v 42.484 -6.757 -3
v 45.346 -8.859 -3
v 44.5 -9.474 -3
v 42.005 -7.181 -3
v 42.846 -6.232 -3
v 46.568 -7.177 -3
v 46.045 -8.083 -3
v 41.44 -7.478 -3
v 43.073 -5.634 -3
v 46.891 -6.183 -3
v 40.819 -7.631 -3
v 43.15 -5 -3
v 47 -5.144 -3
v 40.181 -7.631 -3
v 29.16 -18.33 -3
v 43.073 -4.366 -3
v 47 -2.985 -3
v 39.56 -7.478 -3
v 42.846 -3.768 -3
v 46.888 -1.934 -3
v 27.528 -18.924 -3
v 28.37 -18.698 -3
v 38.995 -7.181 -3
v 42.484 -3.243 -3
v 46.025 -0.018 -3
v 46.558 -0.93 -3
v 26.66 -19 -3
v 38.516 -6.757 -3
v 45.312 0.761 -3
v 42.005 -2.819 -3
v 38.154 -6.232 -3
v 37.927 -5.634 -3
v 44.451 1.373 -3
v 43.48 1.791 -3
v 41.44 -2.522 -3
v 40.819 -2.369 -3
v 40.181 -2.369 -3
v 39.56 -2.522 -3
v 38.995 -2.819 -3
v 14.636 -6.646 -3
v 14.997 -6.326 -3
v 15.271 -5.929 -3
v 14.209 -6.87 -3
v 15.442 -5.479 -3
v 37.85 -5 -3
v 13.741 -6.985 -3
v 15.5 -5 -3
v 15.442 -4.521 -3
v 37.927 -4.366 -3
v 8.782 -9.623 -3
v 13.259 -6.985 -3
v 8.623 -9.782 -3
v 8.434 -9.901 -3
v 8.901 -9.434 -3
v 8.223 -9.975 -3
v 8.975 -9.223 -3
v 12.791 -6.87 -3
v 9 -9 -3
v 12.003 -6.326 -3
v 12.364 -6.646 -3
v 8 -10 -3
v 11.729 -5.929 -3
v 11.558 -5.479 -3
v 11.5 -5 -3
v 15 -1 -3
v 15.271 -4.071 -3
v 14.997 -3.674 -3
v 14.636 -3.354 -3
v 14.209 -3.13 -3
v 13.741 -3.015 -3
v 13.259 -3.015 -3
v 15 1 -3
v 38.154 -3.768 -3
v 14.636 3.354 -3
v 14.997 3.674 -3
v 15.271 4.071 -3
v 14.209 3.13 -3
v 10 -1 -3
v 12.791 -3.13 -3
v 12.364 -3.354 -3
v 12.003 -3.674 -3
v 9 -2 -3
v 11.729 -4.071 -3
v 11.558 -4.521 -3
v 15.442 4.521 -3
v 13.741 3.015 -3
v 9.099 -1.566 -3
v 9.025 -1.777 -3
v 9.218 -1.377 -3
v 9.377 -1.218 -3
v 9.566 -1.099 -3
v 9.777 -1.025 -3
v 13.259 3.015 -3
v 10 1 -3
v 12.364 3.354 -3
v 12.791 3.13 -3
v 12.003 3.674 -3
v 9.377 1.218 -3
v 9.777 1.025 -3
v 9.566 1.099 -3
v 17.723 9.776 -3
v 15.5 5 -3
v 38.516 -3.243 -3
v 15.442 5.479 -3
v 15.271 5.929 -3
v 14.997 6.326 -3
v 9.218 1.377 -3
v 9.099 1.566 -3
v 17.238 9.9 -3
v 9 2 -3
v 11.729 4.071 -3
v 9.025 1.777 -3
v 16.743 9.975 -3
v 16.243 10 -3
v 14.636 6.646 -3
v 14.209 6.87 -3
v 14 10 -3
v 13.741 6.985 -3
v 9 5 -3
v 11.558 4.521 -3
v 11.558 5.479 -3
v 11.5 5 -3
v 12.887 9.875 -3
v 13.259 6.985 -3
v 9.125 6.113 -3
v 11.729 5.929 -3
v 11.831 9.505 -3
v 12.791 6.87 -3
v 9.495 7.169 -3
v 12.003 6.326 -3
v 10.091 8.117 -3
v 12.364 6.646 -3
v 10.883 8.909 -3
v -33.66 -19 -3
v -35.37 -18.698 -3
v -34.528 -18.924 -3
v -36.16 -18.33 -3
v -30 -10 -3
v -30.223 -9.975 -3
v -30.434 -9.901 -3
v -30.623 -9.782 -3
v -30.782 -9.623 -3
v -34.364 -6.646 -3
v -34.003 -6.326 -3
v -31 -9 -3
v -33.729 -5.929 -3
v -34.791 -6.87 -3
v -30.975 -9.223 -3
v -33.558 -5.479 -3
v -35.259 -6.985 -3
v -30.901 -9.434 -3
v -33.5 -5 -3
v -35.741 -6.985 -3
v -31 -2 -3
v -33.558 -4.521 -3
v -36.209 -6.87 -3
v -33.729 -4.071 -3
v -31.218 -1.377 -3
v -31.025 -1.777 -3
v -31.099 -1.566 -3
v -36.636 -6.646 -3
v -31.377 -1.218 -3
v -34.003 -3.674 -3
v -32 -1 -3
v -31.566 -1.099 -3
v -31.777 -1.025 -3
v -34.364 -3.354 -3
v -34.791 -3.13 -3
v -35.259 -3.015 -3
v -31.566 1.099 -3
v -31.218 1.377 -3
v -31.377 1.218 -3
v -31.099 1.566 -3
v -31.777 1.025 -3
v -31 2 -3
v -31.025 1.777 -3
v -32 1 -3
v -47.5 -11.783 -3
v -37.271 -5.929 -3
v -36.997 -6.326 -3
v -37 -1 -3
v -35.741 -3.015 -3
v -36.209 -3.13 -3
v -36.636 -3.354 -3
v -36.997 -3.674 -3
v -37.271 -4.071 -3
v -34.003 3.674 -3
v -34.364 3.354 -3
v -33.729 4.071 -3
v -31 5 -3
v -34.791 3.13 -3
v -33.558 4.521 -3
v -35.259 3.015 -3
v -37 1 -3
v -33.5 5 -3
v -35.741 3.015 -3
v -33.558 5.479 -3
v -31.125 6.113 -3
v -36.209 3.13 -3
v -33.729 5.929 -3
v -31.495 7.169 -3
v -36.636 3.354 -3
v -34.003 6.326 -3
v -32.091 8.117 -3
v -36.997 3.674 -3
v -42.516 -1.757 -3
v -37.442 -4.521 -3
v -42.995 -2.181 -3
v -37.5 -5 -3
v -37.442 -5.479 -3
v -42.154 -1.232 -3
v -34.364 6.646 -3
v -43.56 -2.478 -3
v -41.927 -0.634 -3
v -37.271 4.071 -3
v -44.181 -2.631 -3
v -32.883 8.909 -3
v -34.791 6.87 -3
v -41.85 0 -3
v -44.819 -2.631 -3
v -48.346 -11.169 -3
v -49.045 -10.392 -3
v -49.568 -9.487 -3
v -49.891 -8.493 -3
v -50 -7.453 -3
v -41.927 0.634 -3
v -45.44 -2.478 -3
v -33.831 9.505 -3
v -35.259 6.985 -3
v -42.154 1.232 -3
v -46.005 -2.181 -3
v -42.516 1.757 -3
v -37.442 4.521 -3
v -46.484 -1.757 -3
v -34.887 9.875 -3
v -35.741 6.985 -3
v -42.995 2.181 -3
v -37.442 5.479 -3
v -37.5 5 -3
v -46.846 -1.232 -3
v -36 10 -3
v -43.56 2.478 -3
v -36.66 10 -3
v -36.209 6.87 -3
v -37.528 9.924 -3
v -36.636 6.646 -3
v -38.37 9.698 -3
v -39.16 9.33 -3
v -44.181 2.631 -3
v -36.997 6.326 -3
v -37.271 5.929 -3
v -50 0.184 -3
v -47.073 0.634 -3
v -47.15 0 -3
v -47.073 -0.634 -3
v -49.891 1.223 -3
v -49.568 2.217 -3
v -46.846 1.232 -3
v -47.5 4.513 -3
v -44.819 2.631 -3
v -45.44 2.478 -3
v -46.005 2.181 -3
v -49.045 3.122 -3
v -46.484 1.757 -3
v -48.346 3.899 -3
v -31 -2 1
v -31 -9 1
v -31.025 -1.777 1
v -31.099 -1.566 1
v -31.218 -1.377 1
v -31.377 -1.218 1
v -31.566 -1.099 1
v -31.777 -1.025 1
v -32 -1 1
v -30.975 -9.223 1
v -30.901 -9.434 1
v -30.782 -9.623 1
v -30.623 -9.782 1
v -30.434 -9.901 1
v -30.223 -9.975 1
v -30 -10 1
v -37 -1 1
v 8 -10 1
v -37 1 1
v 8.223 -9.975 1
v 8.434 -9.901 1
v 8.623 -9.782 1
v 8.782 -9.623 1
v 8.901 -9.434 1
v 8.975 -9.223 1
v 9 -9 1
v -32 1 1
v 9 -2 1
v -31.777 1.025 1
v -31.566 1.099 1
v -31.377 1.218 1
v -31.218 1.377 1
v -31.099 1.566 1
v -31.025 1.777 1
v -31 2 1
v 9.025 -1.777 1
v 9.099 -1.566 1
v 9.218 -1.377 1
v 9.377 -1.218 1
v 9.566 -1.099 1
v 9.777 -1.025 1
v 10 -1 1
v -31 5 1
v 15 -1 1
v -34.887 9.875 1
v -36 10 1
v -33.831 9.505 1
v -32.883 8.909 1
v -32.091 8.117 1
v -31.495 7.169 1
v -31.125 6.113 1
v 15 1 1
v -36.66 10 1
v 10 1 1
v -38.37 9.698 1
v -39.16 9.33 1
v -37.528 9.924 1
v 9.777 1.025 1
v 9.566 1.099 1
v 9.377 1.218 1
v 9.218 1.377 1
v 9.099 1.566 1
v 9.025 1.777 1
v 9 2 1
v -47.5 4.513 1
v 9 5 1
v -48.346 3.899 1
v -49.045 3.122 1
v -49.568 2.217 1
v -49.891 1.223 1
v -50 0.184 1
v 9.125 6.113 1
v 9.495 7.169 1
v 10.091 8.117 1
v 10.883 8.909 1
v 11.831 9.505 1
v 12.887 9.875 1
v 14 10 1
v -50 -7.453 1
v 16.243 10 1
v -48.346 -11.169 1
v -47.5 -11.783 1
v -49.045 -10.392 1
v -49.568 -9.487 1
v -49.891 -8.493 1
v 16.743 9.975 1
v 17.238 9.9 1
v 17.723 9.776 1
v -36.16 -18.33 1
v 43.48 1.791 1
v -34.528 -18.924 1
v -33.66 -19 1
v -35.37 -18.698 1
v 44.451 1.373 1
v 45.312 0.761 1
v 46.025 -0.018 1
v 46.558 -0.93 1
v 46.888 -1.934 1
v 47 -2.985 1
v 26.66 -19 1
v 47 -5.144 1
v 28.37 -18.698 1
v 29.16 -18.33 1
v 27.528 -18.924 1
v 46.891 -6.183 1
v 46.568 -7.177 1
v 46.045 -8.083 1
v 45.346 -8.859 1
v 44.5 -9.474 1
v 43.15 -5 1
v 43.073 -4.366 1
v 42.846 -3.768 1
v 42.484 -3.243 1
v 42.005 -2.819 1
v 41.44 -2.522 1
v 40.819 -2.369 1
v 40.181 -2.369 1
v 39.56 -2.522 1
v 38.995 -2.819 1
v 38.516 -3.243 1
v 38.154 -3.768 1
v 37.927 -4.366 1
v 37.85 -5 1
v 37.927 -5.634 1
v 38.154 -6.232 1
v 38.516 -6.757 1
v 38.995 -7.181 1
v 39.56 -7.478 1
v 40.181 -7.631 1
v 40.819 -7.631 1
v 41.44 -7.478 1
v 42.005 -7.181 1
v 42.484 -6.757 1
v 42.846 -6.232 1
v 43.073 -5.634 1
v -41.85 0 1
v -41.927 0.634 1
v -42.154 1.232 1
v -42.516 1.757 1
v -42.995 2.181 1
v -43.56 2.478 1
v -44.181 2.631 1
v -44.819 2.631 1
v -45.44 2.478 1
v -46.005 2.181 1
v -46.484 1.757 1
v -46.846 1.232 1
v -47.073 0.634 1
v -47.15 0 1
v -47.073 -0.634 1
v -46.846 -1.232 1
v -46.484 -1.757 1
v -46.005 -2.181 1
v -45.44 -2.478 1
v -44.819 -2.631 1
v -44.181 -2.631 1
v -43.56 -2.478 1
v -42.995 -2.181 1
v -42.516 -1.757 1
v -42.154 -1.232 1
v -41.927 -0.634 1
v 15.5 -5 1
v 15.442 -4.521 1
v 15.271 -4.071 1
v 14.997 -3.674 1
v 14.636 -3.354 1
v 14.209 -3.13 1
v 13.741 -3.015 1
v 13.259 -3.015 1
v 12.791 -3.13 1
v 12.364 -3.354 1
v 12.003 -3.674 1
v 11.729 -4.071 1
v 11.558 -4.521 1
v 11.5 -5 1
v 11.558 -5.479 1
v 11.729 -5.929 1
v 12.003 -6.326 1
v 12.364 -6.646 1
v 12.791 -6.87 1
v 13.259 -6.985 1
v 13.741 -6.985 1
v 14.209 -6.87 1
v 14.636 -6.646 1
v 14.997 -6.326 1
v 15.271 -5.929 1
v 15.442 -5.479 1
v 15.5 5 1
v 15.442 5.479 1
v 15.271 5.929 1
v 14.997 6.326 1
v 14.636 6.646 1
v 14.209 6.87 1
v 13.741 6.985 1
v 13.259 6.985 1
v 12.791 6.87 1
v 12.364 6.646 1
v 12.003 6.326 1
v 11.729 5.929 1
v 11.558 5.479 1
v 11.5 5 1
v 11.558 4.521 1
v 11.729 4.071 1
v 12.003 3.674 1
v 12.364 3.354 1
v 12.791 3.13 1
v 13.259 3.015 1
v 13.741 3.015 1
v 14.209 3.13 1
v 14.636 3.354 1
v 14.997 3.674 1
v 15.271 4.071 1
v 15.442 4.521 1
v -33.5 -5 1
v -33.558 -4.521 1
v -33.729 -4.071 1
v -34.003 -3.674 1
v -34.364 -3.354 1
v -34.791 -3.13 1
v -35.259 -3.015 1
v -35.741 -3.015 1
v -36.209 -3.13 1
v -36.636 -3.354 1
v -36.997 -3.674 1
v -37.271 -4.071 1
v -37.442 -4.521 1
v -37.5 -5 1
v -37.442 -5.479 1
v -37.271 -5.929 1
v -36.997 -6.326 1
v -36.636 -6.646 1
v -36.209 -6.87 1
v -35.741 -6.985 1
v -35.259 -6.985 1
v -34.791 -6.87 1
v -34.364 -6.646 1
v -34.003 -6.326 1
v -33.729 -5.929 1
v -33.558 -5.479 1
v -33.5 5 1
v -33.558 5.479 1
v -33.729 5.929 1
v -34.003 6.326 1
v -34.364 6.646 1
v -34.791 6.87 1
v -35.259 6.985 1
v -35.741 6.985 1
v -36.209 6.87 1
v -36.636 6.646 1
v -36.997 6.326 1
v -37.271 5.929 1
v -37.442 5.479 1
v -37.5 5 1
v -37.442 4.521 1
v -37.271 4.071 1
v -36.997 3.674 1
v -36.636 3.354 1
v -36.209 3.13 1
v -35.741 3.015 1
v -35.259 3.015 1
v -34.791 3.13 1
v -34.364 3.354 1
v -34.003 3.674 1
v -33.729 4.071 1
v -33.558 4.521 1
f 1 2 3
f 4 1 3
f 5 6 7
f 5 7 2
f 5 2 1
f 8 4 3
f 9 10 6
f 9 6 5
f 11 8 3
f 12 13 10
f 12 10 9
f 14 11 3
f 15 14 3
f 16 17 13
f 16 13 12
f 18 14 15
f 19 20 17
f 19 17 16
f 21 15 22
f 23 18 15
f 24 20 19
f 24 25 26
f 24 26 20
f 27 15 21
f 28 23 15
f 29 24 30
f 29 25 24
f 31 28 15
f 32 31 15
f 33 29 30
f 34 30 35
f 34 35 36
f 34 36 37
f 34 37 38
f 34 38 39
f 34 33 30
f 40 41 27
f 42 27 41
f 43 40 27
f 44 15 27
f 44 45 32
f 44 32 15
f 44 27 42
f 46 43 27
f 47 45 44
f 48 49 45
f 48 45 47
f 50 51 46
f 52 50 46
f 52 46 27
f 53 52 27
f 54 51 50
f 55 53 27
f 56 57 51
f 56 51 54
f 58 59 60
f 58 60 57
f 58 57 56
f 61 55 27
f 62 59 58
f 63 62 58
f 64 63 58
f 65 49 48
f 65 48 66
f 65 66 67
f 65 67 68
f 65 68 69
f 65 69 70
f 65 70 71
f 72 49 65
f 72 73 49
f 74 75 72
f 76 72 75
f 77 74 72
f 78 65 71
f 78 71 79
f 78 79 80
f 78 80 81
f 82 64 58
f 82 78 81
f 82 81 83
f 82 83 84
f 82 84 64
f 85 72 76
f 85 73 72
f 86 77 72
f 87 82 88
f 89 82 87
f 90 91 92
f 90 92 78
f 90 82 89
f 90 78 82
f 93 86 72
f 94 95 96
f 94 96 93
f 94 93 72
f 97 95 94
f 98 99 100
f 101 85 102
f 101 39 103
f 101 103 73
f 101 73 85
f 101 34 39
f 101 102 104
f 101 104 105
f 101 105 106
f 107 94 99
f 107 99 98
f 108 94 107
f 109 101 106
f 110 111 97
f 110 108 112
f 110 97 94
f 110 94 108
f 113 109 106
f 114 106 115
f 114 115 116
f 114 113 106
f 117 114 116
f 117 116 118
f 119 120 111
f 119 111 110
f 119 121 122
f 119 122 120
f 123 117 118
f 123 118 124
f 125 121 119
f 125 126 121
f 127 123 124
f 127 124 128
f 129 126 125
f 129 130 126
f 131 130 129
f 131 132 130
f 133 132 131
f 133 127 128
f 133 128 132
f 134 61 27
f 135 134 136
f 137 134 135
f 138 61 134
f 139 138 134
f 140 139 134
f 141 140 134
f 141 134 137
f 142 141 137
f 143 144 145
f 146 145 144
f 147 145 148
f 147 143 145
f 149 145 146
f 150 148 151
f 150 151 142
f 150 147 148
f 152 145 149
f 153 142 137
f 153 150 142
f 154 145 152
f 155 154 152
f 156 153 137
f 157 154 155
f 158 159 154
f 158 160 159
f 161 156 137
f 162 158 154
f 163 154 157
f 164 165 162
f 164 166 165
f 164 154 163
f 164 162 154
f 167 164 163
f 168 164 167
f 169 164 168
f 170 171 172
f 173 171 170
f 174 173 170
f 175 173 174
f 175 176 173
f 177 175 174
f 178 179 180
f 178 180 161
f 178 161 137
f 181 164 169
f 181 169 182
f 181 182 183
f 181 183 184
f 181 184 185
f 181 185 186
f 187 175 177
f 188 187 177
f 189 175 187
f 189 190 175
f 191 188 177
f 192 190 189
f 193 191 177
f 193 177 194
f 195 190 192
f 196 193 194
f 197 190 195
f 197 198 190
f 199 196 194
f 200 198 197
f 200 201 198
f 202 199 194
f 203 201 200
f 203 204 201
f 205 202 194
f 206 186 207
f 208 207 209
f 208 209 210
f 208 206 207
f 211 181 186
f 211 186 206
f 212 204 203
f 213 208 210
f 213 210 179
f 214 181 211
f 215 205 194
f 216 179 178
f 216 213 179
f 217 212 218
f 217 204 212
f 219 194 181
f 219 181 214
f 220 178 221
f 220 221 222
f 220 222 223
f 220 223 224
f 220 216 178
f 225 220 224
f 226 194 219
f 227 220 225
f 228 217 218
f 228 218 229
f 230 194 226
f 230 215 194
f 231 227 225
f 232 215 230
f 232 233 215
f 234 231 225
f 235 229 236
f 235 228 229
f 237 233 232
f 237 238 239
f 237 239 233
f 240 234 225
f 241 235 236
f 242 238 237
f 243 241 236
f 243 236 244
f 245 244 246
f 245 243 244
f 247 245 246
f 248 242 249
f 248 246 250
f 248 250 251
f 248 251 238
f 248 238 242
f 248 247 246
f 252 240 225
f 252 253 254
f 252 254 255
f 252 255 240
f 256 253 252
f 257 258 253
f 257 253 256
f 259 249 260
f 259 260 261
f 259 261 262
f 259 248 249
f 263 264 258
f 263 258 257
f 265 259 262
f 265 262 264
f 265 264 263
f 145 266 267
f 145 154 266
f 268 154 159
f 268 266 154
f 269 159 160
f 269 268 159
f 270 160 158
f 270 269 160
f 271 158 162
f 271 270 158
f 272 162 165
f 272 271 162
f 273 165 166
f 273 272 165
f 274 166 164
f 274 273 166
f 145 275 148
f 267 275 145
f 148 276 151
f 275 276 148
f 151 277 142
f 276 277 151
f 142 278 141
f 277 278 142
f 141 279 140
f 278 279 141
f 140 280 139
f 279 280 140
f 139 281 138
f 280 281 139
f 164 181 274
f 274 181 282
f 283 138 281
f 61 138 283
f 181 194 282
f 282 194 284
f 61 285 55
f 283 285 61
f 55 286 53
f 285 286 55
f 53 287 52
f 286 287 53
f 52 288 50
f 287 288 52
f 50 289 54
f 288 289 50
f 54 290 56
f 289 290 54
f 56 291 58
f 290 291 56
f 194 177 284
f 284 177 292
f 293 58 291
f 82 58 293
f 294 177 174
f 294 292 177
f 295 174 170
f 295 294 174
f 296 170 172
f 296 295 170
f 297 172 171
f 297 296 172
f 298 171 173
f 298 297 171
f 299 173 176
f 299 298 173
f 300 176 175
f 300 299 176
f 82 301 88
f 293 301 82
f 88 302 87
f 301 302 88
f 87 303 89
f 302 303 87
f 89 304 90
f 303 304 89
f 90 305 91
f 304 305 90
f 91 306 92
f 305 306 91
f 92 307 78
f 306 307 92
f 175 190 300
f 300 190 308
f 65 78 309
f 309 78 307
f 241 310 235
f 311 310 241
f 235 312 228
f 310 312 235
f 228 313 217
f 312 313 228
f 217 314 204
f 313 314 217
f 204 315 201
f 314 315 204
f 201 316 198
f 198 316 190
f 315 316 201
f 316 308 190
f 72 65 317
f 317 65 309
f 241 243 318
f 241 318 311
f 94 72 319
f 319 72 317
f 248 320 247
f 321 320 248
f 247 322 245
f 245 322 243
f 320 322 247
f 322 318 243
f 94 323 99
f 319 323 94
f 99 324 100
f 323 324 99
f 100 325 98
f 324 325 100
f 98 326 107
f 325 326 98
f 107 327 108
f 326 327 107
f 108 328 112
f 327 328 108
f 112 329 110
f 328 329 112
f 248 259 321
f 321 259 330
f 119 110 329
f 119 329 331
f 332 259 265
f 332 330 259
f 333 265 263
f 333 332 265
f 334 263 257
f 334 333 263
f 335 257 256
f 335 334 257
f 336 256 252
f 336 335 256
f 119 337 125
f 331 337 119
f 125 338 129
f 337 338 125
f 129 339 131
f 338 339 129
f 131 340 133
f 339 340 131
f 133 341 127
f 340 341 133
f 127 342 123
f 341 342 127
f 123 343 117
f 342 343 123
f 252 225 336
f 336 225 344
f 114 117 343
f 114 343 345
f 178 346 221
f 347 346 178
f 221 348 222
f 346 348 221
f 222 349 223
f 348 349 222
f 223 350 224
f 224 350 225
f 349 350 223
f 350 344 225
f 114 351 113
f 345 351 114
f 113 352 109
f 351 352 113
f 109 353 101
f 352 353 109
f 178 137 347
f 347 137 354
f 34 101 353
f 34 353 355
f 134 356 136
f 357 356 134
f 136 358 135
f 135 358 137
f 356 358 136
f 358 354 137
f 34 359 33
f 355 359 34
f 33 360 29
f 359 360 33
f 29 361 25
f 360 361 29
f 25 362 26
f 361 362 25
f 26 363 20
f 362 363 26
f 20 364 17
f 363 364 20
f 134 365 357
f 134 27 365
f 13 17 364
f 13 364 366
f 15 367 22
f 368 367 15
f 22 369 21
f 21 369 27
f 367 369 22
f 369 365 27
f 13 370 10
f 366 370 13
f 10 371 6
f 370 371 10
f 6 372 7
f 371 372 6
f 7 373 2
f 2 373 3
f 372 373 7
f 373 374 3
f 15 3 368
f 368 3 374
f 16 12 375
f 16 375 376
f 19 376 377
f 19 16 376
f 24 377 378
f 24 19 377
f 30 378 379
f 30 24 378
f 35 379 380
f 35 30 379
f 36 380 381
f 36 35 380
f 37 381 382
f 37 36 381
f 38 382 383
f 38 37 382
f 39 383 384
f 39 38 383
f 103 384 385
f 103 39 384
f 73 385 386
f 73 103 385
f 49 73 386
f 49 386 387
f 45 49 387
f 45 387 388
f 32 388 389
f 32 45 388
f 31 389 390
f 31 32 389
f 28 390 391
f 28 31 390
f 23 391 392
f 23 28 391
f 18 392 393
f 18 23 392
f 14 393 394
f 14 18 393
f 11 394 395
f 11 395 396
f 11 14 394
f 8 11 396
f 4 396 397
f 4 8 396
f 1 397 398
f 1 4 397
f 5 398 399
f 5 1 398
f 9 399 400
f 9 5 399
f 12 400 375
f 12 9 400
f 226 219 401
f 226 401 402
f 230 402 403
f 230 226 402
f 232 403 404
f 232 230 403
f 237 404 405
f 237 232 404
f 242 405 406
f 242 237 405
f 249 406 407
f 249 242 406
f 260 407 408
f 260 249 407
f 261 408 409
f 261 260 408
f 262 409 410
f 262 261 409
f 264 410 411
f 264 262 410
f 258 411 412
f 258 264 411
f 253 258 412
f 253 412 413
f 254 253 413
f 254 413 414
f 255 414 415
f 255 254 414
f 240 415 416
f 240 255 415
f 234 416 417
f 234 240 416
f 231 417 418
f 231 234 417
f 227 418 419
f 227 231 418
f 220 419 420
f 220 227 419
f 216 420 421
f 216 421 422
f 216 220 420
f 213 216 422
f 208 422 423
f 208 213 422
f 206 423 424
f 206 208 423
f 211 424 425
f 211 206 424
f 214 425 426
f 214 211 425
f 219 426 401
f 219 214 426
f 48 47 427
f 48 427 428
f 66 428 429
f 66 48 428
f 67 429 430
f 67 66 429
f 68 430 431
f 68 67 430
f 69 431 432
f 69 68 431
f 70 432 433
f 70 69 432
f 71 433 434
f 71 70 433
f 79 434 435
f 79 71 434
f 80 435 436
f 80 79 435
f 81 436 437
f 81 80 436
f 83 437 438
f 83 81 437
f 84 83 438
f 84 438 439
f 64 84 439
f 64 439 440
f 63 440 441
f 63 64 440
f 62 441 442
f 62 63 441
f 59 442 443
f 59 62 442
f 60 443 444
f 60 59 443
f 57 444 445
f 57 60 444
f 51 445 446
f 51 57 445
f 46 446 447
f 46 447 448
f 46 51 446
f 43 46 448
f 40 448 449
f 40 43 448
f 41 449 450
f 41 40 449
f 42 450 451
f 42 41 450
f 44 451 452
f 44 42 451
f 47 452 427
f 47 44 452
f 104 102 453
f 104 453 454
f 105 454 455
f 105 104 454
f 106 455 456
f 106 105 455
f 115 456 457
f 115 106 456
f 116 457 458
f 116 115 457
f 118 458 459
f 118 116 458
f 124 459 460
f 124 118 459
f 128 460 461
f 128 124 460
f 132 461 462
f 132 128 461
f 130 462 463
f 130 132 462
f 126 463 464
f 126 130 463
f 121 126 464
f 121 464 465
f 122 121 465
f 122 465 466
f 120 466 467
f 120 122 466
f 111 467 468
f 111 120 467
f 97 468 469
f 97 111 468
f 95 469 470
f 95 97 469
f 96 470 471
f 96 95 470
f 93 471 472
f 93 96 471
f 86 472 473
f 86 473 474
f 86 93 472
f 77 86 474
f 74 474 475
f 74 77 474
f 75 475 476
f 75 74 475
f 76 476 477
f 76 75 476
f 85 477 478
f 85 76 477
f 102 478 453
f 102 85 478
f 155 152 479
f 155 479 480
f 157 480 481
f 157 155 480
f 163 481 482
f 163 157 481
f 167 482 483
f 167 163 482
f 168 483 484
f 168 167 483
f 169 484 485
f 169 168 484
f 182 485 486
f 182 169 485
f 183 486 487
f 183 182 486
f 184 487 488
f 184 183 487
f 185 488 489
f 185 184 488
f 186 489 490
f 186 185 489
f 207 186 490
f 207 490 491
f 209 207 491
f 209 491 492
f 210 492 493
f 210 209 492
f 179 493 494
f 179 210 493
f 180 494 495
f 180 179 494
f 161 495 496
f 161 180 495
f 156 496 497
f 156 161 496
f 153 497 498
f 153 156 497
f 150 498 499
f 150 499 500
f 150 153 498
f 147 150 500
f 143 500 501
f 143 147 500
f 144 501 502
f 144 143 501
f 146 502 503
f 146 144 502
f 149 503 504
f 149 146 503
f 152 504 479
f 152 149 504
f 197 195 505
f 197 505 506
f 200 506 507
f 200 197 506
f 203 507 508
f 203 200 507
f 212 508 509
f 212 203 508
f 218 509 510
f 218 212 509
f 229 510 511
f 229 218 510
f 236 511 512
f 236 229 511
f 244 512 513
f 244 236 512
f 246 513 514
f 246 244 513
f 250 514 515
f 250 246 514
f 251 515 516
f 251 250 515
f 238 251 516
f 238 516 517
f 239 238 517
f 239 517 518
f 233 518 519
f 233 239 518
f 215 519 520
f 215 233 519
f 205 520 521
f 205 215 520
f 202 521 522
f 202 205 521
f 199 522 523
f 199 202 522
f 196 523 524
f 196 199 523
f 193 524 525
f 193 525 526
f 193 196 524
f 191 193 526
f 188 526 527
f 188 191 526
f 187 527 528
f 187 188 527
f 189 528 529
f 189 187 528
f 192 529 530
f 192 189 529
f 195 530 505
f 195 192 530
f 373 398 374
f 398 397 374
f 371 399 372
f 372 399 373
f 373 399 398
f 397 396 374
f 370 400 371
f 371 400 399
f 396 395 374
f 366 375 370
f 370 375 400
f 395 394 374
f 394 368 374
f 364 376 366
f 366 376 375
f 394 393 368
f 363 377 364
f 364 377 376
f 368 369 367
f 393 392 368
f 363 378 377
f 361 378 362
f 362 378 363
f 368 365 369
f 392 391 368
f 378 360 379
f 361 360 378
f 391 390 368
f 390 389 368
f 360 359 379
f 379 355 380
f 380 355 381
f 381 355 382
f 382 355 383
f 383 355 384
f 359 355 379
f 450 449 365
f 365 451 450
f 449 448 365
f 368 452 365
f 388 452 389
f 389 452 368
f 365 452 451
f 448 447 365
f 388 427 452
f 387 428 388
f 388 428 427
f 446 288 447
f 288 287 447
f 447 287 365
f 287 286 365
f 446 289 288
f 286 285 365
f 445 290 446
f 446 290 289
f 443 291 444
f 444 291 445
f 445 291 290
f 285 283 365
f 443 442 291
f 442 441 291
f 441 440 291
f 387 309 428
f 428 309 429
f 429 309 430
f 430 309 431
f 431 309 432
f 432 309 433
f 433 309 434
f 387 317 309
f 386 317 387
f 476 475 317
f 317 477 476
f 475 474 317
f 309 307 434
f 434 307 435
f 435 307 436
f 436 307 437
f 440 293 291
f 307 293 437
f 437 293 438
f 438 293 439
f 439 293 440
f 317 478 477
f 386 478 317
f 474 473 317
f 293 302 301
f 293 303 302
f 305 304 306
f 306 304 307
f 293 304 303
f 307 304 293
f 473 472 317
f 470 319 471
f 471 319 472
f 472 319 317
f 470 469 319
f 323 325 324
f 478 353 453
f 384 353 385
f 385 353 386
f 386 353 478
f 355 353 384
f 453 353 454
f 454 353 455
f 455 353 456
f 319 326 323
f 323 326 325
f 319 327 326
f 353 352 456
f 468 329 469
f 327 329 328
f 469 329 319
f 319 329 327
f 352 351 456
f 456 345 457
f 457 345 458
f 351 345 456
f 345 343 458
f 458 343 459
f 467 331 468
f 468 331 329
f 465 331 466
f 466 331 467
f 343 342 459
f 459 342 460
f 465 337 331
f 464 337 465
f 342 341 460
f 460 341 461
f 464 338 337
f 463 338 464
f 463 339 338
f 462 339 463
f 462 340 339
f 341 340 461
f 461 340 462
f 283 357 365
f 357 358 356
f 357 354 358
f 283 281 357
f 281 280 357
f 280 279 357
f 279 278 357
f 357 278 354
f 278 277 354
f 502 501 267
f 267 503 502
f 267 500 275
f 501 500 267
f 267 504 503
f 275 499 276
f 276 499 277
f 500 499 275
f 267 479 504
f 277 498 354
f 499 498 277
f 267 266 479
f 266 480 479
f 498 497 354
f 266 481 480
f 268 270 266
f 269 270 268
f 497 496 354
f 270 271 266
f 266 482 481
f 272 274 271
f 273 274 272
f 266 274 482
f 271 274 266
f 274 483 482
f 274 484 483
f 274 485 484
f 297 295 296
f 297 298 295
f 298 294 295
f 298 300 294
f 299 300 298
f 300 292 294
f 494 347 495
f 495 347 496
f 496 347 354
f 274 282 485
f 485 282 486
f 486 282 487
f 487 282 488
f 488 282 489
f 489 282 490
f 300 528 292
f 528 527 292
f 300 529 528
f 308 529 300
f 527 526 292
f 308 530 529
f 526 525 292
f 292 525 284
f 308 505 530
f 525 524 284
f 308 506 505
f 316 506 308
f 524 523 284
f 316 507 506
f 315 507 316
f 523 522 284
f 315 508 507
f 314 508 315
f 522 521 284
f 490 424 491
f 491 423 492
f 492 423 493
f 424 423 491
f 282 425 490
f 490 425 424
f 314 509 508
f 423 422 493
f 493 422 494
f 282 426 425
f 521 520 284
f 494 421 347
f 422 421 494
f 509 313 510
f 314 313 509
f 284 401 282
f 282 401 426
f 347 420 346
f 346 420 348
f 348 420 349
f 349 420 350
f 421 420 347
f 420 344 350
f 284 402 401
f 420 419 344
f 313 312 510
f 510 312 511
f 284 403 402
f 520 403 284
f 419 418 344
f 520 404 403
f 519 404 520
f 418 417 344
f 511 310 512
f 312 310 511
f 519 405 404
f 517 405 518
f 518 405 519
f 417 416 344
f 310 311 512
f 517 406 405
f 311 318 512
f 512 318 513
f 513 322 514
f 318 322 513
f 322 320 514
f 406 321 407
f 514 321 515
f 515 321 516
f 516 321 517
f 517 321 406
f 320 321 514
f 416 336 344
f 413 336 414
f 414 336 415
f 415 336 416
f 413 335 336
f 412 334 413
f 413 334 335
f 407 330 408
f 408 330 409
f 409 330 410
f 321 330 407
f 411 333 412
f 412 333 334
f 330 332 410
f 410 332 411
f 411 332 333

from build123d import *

# Parameters (mm, degrees)
SKETCH005_R   = 2
SKETCH005_R_2 = 2.65
PAD_DEPTH     = 4
FILLET_R      = 5
FILLET001_R   = 1
FILLET002_R   = 1


with BuildPart() as part:
    # Sketch005 → Pad (new body)
    with BuildSketch(Plane.XY.offset(-3)):
        Polygon((-38, 10), (-31, 10), (-31, 1), (-37, 1), (-37, -1), (-31, -1), (-31, -10), (9, -10), (9, -1), (15, -1), (15, 1), (9, 1), (9, 10), (17, 10), (47, 0.7), (47, -8.030345), (28, -19), (-35, -19), (-50, -10.339746), (-50, 3.07), align=None)
        with Locations((-35.5, 5)):
            Circle(SKETCH005_R, mode=Mode.SUBTRACT)
        with Locations((-35.5, -5)):
            Circle(SKETCH005_R, mode=Mode.SUBTRACT)
        with Locations((13.5, 5)):
            Circle(SKETCH005_R, mode=Mode.SUBTRACT)
        with Locations((13.5, -5)):
            Circle(SKETCH005_R, mode=Mode.SUBTRACT)
        with Locations((-44.5, 0)):
            Circle(SKETCH005_R_2, mode=Mode.SUBTRACT)
        with Locations((40.5, -5)):
            Circle(SKETCH005_R_2, mode=Mode.SUBTRACT)
    extrude(amount=PAD_DEPTH)

    # Fillet
    fillet_edges = [part.edges().sort_by_distance(p)[0] for p in [
        (28, -19, -1),
        (47, -8.030345, -1),
        (-35, -19, -1),
        (-50, -10.339746, -1),
        (-50, 3.07, -1),
        (-38, 10, -1),
        (47, 0.7, -1),
        (17, 10, -1),
        (-31, 10, -1),
        (9, 10, -1),
    ]]
    fillet(fillet_edges, radius=FILLET_R)

    # Fillet001
    fillet001_edges = [part.edges().sort_by_distance(p)[0] for p in [
        (-31, -10, -1),
        (9, -10, -1),
    ]]
    fillet(fillet001_edges, radius=FILLET001_R)

    # Fillet002
    fillet002_edges = [part.edges().sort_by_distance(p)[0] for p in [
        (-31, -1, -1),
        (-31, 1, -1),
        (9, 1, -1),
        (9, -1, -1),
    ]]
    fillet(fillet002_edges, radius=FILLET002_R)


solid = part.part
